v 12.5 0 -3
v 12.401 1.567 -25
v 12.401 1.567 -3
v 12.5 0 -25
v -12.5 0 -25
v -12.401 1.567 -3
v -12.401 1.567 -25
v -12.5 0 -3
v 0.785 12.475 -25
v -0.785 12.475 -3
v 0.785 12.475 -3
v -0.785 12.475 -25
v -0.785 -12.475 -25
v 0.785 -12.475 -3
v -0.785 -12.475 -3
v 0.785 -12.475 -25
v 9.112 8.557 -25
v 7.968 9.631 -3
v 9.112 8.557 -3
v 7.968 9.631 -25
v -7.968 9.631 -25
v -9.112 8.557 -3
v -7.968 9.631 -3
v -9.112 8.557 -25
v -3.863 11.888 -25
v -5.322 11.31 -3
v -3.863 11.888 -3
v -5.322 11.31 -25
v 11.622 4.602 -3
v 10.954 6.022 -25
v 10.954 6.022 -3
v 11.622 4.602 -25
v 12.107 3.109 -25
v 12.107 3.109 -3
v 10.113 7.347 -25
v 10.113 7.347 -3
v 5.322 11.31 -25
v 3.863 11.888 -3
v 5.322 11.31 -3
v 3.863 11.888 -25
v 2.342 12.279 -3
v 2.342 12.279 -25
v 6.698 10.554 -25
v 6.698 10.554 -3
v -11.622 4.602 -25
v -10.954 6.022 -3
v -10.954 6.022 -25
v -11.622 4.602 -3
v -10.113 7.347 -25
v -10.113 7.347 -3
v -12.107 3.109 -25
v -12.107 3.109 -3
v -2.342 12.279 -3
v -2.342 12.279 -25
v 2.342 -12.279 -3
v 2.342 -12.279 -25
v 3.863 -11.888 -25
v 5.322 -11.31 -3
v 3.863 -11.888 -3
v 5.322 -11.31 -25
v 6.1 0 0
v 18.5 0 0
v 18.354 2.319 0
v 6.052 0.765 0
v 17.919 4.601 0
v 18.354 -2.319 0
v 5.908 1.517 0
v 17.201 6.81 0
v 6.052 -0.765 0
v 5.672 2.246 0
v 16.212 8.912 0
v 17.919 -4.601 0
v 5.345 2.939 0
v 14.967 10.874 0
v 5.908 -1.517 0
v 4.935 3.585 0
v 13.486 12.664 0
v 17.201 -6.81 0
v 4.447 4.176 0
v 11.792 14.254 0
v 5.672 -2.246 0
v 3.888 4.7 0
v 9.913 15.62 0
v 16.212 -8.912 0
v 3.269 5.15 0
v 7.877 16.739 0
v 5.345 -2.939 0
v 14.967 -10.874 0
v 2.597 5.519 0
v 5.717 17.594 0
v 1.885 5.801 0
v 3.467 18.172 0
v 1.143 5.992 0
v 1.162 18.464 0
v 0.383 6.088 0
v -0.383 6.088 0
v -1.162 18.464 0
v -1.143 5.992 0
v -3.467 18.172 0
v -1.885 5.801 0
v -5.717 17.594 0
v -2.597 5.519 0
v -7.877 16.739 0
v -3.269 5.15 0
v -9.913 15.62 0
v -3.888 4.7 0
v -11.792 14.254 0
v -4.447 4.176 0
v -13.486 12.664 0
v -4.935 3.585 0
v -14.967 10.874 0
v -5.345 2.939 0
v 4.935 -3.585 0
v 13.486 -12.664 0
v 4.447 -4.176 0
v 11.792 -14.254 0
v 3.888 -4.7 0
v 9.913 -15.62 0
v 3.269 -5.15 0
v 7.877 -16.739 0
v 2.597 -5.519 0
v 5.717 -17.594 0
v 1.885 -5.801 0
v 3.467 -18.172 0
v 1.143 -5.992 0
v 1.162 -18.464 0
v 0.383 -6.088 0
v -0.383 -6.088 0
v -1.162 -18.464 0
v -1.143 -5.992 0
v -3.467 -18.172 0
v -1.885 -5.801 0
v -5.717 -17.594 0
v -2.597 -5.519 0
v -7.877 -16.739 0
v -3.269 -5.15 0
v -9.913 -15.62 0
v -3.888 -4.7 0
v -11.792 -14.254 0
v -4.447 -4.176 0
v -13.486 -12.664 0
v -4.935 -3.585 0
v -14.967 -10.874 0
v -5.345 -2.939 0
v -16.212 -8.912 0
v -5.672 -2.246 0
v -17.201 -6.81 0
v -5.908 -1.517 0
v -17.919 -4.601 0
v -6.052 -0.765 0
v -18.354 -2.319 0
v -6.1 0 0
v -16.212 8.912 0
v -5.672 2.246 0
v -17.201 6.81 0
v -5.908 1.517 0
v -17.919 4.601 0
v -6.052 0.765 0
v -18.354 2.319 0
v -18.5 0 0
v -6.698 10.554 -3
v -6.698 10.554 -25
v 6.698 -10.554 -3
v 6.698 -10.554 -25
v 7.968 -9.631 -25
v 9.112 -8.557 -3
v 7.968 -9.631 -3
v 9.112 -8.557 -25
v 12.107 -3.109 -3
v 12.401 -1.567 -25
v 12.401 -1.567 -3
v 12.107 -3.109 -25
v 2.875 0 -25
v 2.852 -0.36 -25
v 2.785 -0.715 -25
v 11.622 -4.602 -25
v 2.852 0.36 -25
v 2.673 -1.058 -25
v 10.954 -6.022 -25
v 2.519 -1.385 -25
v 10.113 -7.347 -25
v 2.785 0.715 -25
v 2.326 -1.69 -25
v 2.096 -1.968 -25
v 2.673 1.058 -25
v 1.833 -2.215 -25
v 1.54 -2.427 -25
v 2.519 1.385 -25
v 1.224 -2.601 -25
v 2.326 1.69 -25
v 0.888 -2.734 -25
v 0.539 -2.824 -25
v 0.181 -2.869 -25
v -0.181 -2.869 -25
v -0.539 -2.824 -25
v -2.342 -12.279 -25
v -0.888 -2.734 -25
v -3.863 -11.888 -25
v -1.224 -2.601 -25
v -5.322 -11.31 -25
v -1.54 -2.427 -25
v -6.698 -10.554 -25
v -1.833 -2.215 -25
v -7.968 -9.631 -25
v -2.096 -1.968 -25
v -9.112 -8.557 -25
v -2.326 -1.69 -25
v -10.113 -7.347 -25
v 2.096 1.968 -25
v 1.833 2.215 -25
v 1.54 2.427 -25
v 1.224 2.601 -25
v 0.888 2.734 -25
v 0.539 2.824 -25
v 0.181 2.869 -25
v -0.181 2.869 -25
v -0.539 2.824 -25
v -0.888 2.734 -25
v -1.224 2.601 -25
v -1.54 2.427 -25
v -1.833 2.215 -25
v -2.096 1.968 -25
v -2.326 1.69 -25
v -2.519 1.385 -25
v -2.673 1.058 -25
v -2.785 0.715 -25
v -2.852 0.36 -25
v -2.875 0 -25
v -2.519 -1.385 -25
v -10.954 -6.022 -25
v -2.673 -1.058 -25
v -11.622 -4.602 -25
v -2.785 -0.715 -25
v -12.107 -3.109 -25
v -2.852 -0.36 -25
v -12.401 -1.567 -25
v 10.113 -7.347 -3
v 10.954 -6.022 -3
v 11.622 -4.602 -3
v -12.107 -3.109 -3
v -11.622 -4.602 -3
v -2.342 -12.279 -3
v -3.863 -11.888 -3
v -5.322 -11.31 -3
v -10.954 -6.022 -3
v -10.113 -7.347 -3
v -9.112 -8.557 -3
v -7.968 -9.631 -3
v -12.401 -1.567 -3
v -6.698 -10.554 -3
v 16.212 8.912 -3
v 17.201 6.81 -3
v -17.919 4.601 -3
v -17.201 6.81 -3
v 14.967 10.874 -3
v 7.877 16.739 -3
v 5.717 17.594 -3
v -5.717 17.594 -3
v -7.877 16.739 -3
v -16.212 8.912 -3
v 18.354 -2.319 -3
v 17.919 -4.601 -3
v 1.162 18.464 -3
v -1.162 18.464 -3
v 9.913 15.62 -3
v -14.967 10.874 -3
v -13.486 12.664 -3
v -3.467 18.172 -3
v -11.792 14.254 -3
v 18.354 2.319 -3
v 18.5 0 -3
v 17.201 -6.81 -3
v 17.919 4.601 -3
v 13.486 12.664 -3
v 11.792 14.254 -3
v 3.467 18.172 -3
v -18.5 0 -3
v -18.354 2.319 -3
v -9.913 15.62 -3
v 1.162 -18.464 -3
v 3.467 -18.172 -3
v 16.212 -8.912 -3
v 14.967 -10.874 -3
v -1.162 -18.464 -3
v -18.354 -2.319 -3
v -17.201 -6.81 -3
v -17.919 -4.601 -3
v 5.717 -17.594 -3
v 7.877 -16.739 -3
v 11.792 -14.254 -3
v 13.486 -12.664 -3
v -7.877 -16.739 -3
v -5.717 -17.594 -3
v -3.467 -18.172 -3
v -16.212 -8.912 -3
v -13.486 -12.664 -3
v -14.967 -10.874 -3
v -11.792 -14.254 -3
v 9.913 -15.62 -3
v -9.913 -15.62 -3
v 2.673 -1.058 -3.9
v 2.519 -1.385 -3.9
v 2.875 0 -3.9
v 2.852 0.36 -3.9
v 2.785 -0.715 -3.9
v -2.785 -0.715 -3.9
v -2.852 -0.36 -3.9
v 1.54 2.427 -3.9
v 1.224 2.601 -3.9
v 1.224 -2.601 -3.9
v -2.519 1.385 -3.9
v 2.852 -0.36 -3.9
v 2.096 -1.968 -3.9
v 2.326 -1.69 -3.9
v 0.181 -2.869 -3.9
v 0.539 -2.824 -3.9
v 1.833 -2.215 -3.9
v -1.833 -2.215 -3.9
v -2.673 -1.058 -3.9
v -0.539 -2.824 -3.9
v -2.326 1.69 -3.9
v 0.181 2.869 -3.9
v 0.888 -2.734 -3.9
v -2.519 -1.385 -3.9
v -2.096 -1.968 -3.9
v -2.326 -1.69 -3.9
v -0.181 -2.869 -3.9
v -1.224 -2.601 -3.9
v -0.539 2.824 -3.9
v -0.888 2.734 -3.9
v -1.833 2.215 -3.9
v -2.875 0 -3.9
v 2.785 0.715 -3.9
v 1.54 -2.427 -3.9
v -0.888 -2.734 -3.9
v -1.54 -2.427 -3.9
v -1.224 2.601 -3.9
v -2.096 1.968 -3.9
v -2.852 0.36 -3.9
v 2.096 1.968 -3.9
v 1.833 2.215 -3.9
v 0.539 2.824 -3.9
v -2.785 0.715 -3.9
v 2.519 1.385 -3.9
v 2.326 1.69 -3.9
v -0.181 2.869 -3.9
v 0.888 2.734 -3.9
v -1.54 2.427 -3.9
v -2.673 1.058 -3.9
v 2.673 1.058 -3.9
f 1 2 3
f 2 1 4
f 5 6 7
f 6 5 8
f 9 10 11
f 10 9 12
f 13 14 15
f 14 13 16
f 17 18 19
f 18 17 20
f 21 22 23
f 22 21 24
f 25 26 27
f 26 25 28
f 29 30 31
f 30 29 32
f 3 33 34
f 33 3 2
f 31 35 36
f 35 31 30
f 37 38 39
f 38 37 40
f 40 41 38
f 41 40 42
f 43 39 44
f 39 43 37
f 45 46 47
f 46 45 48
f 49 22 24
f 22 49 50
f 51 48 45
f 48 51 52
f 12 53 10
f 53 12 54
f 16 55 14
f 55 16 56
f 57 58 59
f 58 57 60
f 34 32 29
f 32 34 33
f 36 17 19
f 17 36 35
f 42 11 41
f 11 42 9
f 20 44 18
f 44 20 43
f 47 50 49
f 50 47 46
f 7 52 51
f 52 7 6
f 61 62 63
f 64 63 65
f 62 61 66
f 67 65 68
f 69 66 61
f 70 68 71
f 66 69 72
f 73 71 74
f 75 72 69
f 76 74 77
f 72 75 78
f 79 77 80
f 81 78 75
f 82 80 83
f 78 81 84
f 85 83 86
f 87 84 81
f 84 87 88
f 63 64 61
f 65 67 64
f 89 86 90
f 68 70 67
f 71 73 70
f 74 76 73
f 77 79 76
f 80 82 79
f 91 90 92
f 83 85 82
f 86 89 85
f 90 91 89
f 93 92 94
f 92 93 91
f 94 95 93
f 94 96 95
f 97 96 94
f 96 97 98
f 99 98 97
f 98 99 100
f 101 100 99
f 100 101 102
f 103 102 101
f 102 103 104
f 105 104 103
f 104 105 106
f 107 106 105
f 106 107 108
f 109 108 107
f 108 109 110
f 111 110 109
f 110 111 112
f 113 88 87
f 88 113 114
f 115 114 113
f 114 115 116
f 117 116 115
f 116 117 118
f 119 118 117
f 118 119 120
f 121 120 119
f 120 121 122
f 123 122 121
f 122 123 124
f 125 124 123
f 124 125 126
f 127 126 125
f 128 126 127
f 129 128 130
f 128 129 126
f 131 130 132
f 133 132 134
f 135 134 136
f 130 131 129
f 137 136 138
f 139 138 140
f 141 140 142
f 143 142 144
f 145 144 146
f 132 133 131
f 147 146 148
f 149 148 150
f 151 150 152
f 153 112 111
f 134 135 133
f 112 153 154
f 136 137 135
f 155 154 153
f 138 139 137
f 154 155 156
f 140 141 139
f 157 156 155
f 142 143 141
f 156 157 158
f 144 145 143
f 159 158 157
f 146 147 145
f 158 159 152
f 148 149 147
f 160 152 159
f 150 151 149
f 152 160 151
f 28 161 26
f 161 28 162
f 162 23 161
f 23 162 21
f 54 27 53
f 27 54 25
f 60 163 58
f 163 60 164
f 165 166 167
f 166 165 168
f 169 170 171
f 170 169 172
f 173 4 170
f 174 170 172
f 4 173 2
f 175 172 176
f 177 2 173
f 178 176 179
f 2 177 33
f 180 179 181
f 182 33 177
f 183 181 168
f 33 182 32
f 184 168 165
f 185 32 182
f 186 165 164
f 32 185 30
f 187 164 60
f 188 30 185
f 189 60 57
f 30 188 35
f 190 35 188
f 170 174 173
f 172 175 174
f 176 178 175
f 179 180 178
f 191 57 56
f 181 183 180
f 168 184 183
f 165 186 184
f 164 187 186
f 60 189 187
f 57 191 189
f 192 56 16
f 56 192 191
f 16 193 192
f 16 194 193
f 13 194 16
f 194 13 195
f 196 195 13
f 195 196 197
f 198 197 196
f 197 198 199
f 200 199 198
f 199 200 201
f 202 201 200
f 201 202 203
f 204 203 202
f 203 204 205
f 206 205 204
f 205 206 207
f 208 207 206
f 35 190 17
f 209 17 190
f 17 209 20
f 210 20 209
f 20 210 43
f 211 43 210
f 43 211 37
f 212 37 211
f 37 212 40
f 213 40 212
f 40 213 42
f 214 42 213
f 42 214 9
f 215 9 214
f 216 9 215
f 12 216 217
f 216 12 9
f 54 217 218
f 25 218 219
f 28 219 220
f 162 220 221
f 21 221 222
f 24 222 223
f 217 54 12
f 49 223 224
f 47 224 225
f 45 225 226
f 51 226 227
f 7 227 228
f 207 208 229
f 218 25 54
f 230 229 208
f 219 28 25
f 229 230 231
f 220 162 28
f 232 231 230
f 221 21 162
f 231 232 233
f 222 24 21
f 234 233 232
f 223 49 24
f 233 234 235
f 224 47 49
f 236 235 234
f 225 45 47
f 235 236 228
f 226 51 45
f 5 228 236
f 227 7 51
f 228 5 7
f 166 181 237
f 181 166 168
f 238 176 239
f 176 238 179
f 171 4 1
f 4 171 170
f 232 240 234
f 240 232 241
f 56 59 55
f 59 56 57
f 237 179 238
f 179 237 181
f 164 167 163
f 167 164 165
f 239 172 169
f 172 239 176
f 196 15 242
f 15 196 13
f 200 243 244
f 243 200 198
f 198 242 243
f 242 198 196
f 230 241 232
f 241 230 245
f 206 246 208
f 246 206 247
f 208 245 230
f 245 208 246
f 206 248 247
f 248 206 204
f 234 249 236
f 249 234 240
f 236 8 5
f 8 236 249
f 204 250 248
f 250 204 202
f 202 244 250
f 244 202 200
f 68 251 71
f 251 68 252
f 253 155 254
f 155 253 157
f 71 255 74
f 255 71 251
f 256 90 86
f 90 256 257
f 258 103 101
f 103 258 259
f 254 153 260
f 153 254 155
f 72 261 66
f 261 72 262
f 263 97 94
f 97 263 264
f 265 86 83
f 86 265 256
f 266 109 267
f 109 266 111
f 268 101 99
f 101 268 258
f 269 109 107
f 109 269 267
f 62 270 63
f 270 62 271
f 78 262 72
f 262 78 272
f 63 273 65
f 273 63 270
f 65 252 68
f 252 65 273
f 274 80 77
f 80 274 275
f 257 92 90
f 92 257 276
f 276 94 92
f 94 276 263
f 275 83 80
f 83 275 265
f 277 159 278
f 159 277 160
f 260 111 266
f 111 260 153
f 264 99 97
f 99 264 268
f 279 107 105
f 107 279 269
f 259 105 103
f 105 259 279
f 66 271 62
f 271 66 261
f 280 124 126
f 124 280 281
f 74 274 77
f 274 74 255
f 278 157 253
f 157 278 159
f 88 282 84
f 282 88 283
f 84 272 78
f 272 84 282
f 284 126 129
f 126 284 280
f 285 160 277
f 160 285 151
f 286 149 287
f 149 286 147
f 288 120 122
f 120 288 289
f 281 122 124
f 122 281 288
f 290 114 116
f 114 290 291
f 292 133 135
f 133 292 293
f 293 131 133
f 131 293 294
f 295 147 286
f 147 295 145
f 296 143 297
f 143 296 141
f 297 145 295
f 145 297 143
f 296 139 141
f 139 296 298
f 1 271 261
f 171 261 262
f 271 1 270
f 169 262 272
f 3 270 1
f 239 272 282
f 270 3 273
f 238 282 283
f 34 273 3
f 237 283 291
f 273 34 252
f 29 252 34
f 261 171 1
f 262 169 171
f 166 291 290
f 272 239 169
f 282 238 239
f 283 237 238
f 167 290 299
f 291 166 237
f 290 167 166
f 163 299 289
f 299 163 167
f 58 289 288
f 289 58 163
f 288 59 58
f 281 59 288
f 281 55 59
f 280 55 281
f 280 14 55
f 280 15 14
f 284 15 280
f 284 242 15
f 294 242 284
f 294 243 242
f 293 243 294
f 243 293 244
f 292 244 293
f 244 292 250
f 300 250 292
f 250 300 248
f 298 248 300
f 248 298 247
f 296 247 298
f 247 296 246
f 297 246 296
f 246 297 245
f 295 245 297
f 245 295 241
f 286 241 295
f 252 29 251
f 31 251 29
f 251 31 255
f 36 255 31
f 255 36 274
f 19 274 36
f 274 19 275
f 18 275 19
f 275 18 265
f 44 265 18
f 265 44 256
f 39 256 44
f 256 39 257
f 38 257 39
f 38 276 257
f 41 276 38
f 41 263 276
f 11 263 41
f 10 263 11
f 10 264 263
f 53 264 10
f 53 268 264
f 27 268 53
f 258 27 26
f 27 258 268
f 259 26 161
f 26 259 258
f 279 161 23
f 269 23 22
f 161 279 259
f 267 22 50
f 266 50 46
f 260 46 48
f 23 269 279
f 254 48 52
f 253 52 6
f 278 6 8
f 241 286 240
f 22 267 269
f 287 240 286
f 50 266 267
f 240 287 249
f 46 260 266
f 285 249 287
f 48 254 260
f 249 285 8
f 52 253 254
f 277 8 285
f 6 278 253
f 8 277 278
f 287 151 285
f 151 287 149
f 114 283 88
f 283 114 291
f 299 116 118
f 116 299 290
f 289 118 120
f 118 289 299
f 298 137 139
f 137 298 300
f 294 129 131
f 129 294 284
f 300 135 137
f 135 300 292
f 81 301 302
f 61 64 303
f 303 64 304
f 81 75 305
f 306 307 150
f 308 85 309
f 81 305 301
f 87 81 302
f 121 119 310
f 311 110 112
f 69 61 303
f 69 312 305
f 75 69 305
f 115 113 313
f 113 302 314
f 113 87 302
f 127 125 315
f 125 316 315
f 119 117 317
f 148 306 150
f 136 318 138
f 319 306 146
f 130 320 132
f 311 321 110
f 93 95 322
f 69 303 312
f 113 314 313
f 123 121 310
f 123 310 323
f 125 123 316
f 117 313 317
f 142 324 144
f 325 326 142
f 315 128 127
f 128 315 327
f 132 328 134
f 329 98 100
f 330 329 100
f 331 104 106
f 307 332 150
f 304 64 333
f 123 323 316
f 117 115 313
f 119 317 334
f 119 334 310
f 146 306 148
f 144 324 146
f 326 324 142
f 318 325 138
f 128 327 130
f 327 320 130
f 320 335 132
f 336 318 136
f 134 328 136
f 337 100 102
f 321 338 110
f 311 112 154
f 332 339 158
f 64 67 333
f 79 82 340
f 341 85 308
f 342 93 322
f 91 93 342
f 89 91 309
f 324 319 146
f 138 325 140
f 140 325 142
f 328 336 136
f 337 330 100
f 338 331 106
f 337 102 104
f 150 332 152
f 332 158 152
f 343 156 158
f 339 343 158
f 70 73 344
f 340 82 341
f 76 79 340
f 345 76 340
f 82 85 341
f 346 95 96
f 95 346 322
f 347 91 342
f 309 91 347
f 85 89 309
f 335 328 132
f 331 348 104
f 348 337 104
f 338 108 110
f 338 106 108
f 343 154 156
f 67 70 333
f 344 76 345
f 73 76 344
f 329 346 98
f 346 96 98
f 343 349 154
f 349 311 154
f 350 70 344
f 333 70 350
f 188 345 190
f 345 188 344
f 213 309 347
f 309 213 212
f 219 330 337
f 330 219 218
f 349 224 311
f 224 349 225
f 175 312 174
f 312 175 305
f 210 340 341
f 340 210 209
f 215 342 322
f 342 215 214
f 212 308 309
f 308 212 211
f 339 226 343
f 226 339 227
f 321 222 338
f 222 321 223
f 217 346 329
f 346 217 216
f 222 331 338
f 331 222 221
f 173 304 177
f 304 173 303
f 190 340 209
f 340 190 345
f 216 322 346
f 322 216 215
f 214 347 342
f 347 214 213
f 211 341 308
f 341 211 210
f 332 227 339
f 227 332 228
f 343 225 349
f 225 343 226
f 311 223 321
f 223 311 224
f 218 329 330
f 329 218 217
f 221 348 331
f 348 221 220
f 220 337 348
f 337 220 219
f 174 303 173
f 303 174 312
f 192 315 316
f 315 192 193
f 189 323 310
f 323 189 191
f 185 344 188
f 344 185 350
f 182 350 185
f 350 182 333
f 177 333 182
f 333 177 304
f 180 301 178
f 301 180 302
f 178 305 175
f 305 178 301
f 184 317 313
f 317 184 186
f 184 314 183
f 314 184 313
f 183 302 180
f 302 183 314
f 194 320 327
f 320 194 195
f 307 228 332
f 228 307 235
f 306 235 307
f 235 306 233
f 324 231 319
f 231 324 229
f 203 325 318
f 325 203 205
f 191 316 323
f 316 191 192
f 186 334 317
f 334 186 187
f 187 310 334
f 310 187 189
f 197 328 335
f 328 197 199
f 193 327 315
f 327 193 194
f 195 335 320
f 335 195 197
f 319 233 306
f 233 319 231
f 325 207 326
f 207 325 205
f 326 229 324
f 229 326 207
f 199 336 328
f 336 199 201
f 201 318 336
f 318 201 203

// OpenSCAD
$fn = 50;


difference() {
	union() {
		translate(v = [0, 0, -25.0000000000]) {
			cylinder(h = 25, r = 12.5000000000);
		}
		translate(v = [0, 0, -3.0000000000]) {
			cylinder(h = 3, r = 18.5000000000);
		}
	}
	union() {
		translate(v = [0, 0, 0]) {
			rotate(a = [0, 0, 0]) {
				difference() {
					union() {
						translate(v = [0, 0, -25.0000000000]) {
							cylinder(h = 25, r = 2.6000000000);
						}
						translate(v = [0, 0, -3.9000000000]) {
							cylinder(h = 3.9000000000, r = 12.5000000000, r1 = 2.8750000000, r2 = 6.1000000000);
						}
						translate(v = [0, 0, -25.0000000000]) {
							cylinder(h = 25, r = 2.8750000000);
						}
						translate(v = [0, 0, -25.0000000000]) {
							cylinder(h = 25, r = 2.6000000000);
						}
					}
					union();
				}
			}
		}
	}
}
